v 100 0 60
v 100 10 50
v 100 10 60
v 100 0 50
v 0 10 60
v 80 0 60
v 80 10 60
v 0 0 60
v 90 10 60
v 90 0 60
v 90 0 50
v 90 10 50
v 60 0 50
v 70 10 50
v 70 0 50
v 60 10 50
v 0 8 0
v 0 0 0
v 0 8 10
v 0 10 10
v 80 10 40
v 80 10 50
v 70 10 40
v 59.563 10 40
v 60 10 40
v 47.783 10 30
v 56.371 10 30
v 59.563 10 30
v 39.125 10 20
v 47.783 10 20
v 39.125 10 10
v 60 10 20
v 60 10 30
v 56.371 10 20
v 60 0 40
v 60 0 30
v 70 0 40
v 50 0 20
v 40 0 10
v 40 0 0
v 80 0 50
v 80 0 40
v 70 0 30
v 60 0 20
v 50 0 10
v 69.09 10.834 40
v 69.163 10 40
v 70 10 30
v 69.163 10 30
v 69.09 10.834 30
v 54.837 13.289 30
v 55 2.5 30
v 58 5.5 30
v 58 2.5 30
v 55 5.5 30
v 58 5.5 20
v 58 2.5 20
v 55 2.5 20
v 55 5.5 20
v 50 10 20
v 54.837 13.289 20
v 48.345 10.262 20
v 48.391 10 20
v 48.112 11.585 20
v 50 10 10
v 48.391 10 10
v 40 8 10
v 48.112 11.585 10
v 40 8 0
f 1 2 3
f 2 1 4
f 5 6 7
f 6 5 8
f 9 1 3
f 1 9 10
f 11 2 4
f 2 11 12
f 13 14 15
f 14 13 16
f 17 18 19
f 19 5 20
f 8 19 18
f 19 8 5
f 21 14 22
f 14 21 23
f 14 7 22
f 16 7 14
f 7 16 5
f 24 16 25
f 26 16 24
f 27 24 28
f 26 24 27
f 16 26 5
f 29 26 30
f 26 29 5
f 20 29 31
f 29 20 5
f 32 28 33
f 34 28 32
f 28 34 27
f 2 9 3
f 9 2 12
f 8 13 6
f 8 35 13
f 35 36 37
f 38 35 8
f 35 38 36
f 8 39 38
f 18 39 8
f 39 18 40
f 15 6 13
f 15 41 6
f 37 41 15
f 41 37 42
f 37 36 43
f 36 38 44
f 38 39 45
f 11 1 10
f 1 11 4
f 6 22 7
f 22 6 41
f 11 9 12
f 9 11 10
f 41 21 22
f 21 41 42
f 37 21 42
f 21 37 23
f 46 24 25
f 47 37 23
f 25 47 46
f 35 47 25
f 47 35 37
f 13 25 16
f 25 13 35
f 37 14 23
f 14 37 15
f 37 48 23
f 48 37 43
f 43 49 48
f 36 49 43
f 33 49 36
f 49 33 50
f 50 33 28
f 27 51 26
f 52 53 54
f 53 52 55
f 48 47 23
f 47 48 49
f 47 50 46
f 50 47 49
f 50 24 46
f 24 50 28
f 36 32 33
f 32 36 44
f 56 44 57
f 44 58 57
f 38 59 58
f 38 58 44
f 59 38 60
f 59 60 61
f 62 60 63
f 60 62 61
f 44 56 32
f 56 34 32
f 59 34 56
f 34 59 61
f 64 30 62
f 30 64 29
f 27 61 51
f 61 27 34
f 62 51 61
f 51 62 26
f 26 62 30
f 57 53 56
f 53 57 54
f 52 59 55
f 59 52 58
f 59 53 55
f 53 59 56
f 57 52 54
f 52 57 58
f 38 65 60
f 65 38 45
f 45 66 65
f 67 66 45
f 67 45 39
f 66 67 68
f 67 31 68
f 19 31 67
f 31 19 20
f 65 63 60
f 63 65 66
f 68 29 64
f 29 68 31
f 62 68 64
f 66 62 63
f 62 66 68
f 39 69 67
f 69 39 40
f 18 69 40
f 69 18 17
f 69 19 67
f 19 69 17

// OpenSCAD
// Define dimensions for each component
module long_hook_shaped_bar() {
    difference() {
        cube([100, 10, 10]); // Main bar
        translate([90, 0, 0]) rotate([0, 0, 90]) cube([10, 10, 10]); // Hook with sharp 90-degree bend
    }
}

module hook_shaped_bracket() {
    difference() {
        cube([80, 10, 10]); // Main bar
        translate([70, 0, 0]) rotate([0, 0, 90]) cube([10, 10, 10]); // Hook elongated with sharp 90-degree bend
    }
}

module flat_bar_with_small_bend() {
    union() {
        cube([70, 10, 10]); // Main bar
        translate([60, 0, 0]) rotate([0, 0, 5]) cube([10, 10, 10]); // Small bend softened to form a gentle curve
    }
}

module angled_bar_with_notch() {
    difference() {
        union() {
            cube([60, 10, 10]); // Main bar
            translate([50, 0, 0]) rotate([0, 0, 25]) cube([10, 10, 10]); // Angled end adjusted to match original design
        }
        translate([55, 2.5, 0]) cube([3, 3, 10]); // Notch size reduced
    }
}

module straight_bar_with_bent_end() {
    union() {
        cube([50, 10, 10]); // Main bar
        translate([40, 0, 0]) rotate([0, 0, 10]) cube([10, 10, 10]); // Bent end with reduced angle for subtle bend
    }
}

module short_straight_bar() {
    cube([40, 8, 10]); // Short straight bar with reduced thickness
}

// Assemble the model based on positional relationships
module flexible_coupling() {
    translate([0, 0, 50]) long_hook_shaped_bar(); // Layer 1
    translate([0, 0, 40]) hook_shaped_bracket(); // Layer 2
    translate([0, 0, 30]) flat_bar_with_small_bend(); // Layer 3
    translate([0, 0, 20]) angled_bar_with_notch(); // Layer 4
    translate([0, 0, 10]) straight_bar_with_bent_end(); // Layer 5
    translate([0, 0, 0]) short_straight_bar(); // Layer 6
}

// Render the model
flexible_coupling();
